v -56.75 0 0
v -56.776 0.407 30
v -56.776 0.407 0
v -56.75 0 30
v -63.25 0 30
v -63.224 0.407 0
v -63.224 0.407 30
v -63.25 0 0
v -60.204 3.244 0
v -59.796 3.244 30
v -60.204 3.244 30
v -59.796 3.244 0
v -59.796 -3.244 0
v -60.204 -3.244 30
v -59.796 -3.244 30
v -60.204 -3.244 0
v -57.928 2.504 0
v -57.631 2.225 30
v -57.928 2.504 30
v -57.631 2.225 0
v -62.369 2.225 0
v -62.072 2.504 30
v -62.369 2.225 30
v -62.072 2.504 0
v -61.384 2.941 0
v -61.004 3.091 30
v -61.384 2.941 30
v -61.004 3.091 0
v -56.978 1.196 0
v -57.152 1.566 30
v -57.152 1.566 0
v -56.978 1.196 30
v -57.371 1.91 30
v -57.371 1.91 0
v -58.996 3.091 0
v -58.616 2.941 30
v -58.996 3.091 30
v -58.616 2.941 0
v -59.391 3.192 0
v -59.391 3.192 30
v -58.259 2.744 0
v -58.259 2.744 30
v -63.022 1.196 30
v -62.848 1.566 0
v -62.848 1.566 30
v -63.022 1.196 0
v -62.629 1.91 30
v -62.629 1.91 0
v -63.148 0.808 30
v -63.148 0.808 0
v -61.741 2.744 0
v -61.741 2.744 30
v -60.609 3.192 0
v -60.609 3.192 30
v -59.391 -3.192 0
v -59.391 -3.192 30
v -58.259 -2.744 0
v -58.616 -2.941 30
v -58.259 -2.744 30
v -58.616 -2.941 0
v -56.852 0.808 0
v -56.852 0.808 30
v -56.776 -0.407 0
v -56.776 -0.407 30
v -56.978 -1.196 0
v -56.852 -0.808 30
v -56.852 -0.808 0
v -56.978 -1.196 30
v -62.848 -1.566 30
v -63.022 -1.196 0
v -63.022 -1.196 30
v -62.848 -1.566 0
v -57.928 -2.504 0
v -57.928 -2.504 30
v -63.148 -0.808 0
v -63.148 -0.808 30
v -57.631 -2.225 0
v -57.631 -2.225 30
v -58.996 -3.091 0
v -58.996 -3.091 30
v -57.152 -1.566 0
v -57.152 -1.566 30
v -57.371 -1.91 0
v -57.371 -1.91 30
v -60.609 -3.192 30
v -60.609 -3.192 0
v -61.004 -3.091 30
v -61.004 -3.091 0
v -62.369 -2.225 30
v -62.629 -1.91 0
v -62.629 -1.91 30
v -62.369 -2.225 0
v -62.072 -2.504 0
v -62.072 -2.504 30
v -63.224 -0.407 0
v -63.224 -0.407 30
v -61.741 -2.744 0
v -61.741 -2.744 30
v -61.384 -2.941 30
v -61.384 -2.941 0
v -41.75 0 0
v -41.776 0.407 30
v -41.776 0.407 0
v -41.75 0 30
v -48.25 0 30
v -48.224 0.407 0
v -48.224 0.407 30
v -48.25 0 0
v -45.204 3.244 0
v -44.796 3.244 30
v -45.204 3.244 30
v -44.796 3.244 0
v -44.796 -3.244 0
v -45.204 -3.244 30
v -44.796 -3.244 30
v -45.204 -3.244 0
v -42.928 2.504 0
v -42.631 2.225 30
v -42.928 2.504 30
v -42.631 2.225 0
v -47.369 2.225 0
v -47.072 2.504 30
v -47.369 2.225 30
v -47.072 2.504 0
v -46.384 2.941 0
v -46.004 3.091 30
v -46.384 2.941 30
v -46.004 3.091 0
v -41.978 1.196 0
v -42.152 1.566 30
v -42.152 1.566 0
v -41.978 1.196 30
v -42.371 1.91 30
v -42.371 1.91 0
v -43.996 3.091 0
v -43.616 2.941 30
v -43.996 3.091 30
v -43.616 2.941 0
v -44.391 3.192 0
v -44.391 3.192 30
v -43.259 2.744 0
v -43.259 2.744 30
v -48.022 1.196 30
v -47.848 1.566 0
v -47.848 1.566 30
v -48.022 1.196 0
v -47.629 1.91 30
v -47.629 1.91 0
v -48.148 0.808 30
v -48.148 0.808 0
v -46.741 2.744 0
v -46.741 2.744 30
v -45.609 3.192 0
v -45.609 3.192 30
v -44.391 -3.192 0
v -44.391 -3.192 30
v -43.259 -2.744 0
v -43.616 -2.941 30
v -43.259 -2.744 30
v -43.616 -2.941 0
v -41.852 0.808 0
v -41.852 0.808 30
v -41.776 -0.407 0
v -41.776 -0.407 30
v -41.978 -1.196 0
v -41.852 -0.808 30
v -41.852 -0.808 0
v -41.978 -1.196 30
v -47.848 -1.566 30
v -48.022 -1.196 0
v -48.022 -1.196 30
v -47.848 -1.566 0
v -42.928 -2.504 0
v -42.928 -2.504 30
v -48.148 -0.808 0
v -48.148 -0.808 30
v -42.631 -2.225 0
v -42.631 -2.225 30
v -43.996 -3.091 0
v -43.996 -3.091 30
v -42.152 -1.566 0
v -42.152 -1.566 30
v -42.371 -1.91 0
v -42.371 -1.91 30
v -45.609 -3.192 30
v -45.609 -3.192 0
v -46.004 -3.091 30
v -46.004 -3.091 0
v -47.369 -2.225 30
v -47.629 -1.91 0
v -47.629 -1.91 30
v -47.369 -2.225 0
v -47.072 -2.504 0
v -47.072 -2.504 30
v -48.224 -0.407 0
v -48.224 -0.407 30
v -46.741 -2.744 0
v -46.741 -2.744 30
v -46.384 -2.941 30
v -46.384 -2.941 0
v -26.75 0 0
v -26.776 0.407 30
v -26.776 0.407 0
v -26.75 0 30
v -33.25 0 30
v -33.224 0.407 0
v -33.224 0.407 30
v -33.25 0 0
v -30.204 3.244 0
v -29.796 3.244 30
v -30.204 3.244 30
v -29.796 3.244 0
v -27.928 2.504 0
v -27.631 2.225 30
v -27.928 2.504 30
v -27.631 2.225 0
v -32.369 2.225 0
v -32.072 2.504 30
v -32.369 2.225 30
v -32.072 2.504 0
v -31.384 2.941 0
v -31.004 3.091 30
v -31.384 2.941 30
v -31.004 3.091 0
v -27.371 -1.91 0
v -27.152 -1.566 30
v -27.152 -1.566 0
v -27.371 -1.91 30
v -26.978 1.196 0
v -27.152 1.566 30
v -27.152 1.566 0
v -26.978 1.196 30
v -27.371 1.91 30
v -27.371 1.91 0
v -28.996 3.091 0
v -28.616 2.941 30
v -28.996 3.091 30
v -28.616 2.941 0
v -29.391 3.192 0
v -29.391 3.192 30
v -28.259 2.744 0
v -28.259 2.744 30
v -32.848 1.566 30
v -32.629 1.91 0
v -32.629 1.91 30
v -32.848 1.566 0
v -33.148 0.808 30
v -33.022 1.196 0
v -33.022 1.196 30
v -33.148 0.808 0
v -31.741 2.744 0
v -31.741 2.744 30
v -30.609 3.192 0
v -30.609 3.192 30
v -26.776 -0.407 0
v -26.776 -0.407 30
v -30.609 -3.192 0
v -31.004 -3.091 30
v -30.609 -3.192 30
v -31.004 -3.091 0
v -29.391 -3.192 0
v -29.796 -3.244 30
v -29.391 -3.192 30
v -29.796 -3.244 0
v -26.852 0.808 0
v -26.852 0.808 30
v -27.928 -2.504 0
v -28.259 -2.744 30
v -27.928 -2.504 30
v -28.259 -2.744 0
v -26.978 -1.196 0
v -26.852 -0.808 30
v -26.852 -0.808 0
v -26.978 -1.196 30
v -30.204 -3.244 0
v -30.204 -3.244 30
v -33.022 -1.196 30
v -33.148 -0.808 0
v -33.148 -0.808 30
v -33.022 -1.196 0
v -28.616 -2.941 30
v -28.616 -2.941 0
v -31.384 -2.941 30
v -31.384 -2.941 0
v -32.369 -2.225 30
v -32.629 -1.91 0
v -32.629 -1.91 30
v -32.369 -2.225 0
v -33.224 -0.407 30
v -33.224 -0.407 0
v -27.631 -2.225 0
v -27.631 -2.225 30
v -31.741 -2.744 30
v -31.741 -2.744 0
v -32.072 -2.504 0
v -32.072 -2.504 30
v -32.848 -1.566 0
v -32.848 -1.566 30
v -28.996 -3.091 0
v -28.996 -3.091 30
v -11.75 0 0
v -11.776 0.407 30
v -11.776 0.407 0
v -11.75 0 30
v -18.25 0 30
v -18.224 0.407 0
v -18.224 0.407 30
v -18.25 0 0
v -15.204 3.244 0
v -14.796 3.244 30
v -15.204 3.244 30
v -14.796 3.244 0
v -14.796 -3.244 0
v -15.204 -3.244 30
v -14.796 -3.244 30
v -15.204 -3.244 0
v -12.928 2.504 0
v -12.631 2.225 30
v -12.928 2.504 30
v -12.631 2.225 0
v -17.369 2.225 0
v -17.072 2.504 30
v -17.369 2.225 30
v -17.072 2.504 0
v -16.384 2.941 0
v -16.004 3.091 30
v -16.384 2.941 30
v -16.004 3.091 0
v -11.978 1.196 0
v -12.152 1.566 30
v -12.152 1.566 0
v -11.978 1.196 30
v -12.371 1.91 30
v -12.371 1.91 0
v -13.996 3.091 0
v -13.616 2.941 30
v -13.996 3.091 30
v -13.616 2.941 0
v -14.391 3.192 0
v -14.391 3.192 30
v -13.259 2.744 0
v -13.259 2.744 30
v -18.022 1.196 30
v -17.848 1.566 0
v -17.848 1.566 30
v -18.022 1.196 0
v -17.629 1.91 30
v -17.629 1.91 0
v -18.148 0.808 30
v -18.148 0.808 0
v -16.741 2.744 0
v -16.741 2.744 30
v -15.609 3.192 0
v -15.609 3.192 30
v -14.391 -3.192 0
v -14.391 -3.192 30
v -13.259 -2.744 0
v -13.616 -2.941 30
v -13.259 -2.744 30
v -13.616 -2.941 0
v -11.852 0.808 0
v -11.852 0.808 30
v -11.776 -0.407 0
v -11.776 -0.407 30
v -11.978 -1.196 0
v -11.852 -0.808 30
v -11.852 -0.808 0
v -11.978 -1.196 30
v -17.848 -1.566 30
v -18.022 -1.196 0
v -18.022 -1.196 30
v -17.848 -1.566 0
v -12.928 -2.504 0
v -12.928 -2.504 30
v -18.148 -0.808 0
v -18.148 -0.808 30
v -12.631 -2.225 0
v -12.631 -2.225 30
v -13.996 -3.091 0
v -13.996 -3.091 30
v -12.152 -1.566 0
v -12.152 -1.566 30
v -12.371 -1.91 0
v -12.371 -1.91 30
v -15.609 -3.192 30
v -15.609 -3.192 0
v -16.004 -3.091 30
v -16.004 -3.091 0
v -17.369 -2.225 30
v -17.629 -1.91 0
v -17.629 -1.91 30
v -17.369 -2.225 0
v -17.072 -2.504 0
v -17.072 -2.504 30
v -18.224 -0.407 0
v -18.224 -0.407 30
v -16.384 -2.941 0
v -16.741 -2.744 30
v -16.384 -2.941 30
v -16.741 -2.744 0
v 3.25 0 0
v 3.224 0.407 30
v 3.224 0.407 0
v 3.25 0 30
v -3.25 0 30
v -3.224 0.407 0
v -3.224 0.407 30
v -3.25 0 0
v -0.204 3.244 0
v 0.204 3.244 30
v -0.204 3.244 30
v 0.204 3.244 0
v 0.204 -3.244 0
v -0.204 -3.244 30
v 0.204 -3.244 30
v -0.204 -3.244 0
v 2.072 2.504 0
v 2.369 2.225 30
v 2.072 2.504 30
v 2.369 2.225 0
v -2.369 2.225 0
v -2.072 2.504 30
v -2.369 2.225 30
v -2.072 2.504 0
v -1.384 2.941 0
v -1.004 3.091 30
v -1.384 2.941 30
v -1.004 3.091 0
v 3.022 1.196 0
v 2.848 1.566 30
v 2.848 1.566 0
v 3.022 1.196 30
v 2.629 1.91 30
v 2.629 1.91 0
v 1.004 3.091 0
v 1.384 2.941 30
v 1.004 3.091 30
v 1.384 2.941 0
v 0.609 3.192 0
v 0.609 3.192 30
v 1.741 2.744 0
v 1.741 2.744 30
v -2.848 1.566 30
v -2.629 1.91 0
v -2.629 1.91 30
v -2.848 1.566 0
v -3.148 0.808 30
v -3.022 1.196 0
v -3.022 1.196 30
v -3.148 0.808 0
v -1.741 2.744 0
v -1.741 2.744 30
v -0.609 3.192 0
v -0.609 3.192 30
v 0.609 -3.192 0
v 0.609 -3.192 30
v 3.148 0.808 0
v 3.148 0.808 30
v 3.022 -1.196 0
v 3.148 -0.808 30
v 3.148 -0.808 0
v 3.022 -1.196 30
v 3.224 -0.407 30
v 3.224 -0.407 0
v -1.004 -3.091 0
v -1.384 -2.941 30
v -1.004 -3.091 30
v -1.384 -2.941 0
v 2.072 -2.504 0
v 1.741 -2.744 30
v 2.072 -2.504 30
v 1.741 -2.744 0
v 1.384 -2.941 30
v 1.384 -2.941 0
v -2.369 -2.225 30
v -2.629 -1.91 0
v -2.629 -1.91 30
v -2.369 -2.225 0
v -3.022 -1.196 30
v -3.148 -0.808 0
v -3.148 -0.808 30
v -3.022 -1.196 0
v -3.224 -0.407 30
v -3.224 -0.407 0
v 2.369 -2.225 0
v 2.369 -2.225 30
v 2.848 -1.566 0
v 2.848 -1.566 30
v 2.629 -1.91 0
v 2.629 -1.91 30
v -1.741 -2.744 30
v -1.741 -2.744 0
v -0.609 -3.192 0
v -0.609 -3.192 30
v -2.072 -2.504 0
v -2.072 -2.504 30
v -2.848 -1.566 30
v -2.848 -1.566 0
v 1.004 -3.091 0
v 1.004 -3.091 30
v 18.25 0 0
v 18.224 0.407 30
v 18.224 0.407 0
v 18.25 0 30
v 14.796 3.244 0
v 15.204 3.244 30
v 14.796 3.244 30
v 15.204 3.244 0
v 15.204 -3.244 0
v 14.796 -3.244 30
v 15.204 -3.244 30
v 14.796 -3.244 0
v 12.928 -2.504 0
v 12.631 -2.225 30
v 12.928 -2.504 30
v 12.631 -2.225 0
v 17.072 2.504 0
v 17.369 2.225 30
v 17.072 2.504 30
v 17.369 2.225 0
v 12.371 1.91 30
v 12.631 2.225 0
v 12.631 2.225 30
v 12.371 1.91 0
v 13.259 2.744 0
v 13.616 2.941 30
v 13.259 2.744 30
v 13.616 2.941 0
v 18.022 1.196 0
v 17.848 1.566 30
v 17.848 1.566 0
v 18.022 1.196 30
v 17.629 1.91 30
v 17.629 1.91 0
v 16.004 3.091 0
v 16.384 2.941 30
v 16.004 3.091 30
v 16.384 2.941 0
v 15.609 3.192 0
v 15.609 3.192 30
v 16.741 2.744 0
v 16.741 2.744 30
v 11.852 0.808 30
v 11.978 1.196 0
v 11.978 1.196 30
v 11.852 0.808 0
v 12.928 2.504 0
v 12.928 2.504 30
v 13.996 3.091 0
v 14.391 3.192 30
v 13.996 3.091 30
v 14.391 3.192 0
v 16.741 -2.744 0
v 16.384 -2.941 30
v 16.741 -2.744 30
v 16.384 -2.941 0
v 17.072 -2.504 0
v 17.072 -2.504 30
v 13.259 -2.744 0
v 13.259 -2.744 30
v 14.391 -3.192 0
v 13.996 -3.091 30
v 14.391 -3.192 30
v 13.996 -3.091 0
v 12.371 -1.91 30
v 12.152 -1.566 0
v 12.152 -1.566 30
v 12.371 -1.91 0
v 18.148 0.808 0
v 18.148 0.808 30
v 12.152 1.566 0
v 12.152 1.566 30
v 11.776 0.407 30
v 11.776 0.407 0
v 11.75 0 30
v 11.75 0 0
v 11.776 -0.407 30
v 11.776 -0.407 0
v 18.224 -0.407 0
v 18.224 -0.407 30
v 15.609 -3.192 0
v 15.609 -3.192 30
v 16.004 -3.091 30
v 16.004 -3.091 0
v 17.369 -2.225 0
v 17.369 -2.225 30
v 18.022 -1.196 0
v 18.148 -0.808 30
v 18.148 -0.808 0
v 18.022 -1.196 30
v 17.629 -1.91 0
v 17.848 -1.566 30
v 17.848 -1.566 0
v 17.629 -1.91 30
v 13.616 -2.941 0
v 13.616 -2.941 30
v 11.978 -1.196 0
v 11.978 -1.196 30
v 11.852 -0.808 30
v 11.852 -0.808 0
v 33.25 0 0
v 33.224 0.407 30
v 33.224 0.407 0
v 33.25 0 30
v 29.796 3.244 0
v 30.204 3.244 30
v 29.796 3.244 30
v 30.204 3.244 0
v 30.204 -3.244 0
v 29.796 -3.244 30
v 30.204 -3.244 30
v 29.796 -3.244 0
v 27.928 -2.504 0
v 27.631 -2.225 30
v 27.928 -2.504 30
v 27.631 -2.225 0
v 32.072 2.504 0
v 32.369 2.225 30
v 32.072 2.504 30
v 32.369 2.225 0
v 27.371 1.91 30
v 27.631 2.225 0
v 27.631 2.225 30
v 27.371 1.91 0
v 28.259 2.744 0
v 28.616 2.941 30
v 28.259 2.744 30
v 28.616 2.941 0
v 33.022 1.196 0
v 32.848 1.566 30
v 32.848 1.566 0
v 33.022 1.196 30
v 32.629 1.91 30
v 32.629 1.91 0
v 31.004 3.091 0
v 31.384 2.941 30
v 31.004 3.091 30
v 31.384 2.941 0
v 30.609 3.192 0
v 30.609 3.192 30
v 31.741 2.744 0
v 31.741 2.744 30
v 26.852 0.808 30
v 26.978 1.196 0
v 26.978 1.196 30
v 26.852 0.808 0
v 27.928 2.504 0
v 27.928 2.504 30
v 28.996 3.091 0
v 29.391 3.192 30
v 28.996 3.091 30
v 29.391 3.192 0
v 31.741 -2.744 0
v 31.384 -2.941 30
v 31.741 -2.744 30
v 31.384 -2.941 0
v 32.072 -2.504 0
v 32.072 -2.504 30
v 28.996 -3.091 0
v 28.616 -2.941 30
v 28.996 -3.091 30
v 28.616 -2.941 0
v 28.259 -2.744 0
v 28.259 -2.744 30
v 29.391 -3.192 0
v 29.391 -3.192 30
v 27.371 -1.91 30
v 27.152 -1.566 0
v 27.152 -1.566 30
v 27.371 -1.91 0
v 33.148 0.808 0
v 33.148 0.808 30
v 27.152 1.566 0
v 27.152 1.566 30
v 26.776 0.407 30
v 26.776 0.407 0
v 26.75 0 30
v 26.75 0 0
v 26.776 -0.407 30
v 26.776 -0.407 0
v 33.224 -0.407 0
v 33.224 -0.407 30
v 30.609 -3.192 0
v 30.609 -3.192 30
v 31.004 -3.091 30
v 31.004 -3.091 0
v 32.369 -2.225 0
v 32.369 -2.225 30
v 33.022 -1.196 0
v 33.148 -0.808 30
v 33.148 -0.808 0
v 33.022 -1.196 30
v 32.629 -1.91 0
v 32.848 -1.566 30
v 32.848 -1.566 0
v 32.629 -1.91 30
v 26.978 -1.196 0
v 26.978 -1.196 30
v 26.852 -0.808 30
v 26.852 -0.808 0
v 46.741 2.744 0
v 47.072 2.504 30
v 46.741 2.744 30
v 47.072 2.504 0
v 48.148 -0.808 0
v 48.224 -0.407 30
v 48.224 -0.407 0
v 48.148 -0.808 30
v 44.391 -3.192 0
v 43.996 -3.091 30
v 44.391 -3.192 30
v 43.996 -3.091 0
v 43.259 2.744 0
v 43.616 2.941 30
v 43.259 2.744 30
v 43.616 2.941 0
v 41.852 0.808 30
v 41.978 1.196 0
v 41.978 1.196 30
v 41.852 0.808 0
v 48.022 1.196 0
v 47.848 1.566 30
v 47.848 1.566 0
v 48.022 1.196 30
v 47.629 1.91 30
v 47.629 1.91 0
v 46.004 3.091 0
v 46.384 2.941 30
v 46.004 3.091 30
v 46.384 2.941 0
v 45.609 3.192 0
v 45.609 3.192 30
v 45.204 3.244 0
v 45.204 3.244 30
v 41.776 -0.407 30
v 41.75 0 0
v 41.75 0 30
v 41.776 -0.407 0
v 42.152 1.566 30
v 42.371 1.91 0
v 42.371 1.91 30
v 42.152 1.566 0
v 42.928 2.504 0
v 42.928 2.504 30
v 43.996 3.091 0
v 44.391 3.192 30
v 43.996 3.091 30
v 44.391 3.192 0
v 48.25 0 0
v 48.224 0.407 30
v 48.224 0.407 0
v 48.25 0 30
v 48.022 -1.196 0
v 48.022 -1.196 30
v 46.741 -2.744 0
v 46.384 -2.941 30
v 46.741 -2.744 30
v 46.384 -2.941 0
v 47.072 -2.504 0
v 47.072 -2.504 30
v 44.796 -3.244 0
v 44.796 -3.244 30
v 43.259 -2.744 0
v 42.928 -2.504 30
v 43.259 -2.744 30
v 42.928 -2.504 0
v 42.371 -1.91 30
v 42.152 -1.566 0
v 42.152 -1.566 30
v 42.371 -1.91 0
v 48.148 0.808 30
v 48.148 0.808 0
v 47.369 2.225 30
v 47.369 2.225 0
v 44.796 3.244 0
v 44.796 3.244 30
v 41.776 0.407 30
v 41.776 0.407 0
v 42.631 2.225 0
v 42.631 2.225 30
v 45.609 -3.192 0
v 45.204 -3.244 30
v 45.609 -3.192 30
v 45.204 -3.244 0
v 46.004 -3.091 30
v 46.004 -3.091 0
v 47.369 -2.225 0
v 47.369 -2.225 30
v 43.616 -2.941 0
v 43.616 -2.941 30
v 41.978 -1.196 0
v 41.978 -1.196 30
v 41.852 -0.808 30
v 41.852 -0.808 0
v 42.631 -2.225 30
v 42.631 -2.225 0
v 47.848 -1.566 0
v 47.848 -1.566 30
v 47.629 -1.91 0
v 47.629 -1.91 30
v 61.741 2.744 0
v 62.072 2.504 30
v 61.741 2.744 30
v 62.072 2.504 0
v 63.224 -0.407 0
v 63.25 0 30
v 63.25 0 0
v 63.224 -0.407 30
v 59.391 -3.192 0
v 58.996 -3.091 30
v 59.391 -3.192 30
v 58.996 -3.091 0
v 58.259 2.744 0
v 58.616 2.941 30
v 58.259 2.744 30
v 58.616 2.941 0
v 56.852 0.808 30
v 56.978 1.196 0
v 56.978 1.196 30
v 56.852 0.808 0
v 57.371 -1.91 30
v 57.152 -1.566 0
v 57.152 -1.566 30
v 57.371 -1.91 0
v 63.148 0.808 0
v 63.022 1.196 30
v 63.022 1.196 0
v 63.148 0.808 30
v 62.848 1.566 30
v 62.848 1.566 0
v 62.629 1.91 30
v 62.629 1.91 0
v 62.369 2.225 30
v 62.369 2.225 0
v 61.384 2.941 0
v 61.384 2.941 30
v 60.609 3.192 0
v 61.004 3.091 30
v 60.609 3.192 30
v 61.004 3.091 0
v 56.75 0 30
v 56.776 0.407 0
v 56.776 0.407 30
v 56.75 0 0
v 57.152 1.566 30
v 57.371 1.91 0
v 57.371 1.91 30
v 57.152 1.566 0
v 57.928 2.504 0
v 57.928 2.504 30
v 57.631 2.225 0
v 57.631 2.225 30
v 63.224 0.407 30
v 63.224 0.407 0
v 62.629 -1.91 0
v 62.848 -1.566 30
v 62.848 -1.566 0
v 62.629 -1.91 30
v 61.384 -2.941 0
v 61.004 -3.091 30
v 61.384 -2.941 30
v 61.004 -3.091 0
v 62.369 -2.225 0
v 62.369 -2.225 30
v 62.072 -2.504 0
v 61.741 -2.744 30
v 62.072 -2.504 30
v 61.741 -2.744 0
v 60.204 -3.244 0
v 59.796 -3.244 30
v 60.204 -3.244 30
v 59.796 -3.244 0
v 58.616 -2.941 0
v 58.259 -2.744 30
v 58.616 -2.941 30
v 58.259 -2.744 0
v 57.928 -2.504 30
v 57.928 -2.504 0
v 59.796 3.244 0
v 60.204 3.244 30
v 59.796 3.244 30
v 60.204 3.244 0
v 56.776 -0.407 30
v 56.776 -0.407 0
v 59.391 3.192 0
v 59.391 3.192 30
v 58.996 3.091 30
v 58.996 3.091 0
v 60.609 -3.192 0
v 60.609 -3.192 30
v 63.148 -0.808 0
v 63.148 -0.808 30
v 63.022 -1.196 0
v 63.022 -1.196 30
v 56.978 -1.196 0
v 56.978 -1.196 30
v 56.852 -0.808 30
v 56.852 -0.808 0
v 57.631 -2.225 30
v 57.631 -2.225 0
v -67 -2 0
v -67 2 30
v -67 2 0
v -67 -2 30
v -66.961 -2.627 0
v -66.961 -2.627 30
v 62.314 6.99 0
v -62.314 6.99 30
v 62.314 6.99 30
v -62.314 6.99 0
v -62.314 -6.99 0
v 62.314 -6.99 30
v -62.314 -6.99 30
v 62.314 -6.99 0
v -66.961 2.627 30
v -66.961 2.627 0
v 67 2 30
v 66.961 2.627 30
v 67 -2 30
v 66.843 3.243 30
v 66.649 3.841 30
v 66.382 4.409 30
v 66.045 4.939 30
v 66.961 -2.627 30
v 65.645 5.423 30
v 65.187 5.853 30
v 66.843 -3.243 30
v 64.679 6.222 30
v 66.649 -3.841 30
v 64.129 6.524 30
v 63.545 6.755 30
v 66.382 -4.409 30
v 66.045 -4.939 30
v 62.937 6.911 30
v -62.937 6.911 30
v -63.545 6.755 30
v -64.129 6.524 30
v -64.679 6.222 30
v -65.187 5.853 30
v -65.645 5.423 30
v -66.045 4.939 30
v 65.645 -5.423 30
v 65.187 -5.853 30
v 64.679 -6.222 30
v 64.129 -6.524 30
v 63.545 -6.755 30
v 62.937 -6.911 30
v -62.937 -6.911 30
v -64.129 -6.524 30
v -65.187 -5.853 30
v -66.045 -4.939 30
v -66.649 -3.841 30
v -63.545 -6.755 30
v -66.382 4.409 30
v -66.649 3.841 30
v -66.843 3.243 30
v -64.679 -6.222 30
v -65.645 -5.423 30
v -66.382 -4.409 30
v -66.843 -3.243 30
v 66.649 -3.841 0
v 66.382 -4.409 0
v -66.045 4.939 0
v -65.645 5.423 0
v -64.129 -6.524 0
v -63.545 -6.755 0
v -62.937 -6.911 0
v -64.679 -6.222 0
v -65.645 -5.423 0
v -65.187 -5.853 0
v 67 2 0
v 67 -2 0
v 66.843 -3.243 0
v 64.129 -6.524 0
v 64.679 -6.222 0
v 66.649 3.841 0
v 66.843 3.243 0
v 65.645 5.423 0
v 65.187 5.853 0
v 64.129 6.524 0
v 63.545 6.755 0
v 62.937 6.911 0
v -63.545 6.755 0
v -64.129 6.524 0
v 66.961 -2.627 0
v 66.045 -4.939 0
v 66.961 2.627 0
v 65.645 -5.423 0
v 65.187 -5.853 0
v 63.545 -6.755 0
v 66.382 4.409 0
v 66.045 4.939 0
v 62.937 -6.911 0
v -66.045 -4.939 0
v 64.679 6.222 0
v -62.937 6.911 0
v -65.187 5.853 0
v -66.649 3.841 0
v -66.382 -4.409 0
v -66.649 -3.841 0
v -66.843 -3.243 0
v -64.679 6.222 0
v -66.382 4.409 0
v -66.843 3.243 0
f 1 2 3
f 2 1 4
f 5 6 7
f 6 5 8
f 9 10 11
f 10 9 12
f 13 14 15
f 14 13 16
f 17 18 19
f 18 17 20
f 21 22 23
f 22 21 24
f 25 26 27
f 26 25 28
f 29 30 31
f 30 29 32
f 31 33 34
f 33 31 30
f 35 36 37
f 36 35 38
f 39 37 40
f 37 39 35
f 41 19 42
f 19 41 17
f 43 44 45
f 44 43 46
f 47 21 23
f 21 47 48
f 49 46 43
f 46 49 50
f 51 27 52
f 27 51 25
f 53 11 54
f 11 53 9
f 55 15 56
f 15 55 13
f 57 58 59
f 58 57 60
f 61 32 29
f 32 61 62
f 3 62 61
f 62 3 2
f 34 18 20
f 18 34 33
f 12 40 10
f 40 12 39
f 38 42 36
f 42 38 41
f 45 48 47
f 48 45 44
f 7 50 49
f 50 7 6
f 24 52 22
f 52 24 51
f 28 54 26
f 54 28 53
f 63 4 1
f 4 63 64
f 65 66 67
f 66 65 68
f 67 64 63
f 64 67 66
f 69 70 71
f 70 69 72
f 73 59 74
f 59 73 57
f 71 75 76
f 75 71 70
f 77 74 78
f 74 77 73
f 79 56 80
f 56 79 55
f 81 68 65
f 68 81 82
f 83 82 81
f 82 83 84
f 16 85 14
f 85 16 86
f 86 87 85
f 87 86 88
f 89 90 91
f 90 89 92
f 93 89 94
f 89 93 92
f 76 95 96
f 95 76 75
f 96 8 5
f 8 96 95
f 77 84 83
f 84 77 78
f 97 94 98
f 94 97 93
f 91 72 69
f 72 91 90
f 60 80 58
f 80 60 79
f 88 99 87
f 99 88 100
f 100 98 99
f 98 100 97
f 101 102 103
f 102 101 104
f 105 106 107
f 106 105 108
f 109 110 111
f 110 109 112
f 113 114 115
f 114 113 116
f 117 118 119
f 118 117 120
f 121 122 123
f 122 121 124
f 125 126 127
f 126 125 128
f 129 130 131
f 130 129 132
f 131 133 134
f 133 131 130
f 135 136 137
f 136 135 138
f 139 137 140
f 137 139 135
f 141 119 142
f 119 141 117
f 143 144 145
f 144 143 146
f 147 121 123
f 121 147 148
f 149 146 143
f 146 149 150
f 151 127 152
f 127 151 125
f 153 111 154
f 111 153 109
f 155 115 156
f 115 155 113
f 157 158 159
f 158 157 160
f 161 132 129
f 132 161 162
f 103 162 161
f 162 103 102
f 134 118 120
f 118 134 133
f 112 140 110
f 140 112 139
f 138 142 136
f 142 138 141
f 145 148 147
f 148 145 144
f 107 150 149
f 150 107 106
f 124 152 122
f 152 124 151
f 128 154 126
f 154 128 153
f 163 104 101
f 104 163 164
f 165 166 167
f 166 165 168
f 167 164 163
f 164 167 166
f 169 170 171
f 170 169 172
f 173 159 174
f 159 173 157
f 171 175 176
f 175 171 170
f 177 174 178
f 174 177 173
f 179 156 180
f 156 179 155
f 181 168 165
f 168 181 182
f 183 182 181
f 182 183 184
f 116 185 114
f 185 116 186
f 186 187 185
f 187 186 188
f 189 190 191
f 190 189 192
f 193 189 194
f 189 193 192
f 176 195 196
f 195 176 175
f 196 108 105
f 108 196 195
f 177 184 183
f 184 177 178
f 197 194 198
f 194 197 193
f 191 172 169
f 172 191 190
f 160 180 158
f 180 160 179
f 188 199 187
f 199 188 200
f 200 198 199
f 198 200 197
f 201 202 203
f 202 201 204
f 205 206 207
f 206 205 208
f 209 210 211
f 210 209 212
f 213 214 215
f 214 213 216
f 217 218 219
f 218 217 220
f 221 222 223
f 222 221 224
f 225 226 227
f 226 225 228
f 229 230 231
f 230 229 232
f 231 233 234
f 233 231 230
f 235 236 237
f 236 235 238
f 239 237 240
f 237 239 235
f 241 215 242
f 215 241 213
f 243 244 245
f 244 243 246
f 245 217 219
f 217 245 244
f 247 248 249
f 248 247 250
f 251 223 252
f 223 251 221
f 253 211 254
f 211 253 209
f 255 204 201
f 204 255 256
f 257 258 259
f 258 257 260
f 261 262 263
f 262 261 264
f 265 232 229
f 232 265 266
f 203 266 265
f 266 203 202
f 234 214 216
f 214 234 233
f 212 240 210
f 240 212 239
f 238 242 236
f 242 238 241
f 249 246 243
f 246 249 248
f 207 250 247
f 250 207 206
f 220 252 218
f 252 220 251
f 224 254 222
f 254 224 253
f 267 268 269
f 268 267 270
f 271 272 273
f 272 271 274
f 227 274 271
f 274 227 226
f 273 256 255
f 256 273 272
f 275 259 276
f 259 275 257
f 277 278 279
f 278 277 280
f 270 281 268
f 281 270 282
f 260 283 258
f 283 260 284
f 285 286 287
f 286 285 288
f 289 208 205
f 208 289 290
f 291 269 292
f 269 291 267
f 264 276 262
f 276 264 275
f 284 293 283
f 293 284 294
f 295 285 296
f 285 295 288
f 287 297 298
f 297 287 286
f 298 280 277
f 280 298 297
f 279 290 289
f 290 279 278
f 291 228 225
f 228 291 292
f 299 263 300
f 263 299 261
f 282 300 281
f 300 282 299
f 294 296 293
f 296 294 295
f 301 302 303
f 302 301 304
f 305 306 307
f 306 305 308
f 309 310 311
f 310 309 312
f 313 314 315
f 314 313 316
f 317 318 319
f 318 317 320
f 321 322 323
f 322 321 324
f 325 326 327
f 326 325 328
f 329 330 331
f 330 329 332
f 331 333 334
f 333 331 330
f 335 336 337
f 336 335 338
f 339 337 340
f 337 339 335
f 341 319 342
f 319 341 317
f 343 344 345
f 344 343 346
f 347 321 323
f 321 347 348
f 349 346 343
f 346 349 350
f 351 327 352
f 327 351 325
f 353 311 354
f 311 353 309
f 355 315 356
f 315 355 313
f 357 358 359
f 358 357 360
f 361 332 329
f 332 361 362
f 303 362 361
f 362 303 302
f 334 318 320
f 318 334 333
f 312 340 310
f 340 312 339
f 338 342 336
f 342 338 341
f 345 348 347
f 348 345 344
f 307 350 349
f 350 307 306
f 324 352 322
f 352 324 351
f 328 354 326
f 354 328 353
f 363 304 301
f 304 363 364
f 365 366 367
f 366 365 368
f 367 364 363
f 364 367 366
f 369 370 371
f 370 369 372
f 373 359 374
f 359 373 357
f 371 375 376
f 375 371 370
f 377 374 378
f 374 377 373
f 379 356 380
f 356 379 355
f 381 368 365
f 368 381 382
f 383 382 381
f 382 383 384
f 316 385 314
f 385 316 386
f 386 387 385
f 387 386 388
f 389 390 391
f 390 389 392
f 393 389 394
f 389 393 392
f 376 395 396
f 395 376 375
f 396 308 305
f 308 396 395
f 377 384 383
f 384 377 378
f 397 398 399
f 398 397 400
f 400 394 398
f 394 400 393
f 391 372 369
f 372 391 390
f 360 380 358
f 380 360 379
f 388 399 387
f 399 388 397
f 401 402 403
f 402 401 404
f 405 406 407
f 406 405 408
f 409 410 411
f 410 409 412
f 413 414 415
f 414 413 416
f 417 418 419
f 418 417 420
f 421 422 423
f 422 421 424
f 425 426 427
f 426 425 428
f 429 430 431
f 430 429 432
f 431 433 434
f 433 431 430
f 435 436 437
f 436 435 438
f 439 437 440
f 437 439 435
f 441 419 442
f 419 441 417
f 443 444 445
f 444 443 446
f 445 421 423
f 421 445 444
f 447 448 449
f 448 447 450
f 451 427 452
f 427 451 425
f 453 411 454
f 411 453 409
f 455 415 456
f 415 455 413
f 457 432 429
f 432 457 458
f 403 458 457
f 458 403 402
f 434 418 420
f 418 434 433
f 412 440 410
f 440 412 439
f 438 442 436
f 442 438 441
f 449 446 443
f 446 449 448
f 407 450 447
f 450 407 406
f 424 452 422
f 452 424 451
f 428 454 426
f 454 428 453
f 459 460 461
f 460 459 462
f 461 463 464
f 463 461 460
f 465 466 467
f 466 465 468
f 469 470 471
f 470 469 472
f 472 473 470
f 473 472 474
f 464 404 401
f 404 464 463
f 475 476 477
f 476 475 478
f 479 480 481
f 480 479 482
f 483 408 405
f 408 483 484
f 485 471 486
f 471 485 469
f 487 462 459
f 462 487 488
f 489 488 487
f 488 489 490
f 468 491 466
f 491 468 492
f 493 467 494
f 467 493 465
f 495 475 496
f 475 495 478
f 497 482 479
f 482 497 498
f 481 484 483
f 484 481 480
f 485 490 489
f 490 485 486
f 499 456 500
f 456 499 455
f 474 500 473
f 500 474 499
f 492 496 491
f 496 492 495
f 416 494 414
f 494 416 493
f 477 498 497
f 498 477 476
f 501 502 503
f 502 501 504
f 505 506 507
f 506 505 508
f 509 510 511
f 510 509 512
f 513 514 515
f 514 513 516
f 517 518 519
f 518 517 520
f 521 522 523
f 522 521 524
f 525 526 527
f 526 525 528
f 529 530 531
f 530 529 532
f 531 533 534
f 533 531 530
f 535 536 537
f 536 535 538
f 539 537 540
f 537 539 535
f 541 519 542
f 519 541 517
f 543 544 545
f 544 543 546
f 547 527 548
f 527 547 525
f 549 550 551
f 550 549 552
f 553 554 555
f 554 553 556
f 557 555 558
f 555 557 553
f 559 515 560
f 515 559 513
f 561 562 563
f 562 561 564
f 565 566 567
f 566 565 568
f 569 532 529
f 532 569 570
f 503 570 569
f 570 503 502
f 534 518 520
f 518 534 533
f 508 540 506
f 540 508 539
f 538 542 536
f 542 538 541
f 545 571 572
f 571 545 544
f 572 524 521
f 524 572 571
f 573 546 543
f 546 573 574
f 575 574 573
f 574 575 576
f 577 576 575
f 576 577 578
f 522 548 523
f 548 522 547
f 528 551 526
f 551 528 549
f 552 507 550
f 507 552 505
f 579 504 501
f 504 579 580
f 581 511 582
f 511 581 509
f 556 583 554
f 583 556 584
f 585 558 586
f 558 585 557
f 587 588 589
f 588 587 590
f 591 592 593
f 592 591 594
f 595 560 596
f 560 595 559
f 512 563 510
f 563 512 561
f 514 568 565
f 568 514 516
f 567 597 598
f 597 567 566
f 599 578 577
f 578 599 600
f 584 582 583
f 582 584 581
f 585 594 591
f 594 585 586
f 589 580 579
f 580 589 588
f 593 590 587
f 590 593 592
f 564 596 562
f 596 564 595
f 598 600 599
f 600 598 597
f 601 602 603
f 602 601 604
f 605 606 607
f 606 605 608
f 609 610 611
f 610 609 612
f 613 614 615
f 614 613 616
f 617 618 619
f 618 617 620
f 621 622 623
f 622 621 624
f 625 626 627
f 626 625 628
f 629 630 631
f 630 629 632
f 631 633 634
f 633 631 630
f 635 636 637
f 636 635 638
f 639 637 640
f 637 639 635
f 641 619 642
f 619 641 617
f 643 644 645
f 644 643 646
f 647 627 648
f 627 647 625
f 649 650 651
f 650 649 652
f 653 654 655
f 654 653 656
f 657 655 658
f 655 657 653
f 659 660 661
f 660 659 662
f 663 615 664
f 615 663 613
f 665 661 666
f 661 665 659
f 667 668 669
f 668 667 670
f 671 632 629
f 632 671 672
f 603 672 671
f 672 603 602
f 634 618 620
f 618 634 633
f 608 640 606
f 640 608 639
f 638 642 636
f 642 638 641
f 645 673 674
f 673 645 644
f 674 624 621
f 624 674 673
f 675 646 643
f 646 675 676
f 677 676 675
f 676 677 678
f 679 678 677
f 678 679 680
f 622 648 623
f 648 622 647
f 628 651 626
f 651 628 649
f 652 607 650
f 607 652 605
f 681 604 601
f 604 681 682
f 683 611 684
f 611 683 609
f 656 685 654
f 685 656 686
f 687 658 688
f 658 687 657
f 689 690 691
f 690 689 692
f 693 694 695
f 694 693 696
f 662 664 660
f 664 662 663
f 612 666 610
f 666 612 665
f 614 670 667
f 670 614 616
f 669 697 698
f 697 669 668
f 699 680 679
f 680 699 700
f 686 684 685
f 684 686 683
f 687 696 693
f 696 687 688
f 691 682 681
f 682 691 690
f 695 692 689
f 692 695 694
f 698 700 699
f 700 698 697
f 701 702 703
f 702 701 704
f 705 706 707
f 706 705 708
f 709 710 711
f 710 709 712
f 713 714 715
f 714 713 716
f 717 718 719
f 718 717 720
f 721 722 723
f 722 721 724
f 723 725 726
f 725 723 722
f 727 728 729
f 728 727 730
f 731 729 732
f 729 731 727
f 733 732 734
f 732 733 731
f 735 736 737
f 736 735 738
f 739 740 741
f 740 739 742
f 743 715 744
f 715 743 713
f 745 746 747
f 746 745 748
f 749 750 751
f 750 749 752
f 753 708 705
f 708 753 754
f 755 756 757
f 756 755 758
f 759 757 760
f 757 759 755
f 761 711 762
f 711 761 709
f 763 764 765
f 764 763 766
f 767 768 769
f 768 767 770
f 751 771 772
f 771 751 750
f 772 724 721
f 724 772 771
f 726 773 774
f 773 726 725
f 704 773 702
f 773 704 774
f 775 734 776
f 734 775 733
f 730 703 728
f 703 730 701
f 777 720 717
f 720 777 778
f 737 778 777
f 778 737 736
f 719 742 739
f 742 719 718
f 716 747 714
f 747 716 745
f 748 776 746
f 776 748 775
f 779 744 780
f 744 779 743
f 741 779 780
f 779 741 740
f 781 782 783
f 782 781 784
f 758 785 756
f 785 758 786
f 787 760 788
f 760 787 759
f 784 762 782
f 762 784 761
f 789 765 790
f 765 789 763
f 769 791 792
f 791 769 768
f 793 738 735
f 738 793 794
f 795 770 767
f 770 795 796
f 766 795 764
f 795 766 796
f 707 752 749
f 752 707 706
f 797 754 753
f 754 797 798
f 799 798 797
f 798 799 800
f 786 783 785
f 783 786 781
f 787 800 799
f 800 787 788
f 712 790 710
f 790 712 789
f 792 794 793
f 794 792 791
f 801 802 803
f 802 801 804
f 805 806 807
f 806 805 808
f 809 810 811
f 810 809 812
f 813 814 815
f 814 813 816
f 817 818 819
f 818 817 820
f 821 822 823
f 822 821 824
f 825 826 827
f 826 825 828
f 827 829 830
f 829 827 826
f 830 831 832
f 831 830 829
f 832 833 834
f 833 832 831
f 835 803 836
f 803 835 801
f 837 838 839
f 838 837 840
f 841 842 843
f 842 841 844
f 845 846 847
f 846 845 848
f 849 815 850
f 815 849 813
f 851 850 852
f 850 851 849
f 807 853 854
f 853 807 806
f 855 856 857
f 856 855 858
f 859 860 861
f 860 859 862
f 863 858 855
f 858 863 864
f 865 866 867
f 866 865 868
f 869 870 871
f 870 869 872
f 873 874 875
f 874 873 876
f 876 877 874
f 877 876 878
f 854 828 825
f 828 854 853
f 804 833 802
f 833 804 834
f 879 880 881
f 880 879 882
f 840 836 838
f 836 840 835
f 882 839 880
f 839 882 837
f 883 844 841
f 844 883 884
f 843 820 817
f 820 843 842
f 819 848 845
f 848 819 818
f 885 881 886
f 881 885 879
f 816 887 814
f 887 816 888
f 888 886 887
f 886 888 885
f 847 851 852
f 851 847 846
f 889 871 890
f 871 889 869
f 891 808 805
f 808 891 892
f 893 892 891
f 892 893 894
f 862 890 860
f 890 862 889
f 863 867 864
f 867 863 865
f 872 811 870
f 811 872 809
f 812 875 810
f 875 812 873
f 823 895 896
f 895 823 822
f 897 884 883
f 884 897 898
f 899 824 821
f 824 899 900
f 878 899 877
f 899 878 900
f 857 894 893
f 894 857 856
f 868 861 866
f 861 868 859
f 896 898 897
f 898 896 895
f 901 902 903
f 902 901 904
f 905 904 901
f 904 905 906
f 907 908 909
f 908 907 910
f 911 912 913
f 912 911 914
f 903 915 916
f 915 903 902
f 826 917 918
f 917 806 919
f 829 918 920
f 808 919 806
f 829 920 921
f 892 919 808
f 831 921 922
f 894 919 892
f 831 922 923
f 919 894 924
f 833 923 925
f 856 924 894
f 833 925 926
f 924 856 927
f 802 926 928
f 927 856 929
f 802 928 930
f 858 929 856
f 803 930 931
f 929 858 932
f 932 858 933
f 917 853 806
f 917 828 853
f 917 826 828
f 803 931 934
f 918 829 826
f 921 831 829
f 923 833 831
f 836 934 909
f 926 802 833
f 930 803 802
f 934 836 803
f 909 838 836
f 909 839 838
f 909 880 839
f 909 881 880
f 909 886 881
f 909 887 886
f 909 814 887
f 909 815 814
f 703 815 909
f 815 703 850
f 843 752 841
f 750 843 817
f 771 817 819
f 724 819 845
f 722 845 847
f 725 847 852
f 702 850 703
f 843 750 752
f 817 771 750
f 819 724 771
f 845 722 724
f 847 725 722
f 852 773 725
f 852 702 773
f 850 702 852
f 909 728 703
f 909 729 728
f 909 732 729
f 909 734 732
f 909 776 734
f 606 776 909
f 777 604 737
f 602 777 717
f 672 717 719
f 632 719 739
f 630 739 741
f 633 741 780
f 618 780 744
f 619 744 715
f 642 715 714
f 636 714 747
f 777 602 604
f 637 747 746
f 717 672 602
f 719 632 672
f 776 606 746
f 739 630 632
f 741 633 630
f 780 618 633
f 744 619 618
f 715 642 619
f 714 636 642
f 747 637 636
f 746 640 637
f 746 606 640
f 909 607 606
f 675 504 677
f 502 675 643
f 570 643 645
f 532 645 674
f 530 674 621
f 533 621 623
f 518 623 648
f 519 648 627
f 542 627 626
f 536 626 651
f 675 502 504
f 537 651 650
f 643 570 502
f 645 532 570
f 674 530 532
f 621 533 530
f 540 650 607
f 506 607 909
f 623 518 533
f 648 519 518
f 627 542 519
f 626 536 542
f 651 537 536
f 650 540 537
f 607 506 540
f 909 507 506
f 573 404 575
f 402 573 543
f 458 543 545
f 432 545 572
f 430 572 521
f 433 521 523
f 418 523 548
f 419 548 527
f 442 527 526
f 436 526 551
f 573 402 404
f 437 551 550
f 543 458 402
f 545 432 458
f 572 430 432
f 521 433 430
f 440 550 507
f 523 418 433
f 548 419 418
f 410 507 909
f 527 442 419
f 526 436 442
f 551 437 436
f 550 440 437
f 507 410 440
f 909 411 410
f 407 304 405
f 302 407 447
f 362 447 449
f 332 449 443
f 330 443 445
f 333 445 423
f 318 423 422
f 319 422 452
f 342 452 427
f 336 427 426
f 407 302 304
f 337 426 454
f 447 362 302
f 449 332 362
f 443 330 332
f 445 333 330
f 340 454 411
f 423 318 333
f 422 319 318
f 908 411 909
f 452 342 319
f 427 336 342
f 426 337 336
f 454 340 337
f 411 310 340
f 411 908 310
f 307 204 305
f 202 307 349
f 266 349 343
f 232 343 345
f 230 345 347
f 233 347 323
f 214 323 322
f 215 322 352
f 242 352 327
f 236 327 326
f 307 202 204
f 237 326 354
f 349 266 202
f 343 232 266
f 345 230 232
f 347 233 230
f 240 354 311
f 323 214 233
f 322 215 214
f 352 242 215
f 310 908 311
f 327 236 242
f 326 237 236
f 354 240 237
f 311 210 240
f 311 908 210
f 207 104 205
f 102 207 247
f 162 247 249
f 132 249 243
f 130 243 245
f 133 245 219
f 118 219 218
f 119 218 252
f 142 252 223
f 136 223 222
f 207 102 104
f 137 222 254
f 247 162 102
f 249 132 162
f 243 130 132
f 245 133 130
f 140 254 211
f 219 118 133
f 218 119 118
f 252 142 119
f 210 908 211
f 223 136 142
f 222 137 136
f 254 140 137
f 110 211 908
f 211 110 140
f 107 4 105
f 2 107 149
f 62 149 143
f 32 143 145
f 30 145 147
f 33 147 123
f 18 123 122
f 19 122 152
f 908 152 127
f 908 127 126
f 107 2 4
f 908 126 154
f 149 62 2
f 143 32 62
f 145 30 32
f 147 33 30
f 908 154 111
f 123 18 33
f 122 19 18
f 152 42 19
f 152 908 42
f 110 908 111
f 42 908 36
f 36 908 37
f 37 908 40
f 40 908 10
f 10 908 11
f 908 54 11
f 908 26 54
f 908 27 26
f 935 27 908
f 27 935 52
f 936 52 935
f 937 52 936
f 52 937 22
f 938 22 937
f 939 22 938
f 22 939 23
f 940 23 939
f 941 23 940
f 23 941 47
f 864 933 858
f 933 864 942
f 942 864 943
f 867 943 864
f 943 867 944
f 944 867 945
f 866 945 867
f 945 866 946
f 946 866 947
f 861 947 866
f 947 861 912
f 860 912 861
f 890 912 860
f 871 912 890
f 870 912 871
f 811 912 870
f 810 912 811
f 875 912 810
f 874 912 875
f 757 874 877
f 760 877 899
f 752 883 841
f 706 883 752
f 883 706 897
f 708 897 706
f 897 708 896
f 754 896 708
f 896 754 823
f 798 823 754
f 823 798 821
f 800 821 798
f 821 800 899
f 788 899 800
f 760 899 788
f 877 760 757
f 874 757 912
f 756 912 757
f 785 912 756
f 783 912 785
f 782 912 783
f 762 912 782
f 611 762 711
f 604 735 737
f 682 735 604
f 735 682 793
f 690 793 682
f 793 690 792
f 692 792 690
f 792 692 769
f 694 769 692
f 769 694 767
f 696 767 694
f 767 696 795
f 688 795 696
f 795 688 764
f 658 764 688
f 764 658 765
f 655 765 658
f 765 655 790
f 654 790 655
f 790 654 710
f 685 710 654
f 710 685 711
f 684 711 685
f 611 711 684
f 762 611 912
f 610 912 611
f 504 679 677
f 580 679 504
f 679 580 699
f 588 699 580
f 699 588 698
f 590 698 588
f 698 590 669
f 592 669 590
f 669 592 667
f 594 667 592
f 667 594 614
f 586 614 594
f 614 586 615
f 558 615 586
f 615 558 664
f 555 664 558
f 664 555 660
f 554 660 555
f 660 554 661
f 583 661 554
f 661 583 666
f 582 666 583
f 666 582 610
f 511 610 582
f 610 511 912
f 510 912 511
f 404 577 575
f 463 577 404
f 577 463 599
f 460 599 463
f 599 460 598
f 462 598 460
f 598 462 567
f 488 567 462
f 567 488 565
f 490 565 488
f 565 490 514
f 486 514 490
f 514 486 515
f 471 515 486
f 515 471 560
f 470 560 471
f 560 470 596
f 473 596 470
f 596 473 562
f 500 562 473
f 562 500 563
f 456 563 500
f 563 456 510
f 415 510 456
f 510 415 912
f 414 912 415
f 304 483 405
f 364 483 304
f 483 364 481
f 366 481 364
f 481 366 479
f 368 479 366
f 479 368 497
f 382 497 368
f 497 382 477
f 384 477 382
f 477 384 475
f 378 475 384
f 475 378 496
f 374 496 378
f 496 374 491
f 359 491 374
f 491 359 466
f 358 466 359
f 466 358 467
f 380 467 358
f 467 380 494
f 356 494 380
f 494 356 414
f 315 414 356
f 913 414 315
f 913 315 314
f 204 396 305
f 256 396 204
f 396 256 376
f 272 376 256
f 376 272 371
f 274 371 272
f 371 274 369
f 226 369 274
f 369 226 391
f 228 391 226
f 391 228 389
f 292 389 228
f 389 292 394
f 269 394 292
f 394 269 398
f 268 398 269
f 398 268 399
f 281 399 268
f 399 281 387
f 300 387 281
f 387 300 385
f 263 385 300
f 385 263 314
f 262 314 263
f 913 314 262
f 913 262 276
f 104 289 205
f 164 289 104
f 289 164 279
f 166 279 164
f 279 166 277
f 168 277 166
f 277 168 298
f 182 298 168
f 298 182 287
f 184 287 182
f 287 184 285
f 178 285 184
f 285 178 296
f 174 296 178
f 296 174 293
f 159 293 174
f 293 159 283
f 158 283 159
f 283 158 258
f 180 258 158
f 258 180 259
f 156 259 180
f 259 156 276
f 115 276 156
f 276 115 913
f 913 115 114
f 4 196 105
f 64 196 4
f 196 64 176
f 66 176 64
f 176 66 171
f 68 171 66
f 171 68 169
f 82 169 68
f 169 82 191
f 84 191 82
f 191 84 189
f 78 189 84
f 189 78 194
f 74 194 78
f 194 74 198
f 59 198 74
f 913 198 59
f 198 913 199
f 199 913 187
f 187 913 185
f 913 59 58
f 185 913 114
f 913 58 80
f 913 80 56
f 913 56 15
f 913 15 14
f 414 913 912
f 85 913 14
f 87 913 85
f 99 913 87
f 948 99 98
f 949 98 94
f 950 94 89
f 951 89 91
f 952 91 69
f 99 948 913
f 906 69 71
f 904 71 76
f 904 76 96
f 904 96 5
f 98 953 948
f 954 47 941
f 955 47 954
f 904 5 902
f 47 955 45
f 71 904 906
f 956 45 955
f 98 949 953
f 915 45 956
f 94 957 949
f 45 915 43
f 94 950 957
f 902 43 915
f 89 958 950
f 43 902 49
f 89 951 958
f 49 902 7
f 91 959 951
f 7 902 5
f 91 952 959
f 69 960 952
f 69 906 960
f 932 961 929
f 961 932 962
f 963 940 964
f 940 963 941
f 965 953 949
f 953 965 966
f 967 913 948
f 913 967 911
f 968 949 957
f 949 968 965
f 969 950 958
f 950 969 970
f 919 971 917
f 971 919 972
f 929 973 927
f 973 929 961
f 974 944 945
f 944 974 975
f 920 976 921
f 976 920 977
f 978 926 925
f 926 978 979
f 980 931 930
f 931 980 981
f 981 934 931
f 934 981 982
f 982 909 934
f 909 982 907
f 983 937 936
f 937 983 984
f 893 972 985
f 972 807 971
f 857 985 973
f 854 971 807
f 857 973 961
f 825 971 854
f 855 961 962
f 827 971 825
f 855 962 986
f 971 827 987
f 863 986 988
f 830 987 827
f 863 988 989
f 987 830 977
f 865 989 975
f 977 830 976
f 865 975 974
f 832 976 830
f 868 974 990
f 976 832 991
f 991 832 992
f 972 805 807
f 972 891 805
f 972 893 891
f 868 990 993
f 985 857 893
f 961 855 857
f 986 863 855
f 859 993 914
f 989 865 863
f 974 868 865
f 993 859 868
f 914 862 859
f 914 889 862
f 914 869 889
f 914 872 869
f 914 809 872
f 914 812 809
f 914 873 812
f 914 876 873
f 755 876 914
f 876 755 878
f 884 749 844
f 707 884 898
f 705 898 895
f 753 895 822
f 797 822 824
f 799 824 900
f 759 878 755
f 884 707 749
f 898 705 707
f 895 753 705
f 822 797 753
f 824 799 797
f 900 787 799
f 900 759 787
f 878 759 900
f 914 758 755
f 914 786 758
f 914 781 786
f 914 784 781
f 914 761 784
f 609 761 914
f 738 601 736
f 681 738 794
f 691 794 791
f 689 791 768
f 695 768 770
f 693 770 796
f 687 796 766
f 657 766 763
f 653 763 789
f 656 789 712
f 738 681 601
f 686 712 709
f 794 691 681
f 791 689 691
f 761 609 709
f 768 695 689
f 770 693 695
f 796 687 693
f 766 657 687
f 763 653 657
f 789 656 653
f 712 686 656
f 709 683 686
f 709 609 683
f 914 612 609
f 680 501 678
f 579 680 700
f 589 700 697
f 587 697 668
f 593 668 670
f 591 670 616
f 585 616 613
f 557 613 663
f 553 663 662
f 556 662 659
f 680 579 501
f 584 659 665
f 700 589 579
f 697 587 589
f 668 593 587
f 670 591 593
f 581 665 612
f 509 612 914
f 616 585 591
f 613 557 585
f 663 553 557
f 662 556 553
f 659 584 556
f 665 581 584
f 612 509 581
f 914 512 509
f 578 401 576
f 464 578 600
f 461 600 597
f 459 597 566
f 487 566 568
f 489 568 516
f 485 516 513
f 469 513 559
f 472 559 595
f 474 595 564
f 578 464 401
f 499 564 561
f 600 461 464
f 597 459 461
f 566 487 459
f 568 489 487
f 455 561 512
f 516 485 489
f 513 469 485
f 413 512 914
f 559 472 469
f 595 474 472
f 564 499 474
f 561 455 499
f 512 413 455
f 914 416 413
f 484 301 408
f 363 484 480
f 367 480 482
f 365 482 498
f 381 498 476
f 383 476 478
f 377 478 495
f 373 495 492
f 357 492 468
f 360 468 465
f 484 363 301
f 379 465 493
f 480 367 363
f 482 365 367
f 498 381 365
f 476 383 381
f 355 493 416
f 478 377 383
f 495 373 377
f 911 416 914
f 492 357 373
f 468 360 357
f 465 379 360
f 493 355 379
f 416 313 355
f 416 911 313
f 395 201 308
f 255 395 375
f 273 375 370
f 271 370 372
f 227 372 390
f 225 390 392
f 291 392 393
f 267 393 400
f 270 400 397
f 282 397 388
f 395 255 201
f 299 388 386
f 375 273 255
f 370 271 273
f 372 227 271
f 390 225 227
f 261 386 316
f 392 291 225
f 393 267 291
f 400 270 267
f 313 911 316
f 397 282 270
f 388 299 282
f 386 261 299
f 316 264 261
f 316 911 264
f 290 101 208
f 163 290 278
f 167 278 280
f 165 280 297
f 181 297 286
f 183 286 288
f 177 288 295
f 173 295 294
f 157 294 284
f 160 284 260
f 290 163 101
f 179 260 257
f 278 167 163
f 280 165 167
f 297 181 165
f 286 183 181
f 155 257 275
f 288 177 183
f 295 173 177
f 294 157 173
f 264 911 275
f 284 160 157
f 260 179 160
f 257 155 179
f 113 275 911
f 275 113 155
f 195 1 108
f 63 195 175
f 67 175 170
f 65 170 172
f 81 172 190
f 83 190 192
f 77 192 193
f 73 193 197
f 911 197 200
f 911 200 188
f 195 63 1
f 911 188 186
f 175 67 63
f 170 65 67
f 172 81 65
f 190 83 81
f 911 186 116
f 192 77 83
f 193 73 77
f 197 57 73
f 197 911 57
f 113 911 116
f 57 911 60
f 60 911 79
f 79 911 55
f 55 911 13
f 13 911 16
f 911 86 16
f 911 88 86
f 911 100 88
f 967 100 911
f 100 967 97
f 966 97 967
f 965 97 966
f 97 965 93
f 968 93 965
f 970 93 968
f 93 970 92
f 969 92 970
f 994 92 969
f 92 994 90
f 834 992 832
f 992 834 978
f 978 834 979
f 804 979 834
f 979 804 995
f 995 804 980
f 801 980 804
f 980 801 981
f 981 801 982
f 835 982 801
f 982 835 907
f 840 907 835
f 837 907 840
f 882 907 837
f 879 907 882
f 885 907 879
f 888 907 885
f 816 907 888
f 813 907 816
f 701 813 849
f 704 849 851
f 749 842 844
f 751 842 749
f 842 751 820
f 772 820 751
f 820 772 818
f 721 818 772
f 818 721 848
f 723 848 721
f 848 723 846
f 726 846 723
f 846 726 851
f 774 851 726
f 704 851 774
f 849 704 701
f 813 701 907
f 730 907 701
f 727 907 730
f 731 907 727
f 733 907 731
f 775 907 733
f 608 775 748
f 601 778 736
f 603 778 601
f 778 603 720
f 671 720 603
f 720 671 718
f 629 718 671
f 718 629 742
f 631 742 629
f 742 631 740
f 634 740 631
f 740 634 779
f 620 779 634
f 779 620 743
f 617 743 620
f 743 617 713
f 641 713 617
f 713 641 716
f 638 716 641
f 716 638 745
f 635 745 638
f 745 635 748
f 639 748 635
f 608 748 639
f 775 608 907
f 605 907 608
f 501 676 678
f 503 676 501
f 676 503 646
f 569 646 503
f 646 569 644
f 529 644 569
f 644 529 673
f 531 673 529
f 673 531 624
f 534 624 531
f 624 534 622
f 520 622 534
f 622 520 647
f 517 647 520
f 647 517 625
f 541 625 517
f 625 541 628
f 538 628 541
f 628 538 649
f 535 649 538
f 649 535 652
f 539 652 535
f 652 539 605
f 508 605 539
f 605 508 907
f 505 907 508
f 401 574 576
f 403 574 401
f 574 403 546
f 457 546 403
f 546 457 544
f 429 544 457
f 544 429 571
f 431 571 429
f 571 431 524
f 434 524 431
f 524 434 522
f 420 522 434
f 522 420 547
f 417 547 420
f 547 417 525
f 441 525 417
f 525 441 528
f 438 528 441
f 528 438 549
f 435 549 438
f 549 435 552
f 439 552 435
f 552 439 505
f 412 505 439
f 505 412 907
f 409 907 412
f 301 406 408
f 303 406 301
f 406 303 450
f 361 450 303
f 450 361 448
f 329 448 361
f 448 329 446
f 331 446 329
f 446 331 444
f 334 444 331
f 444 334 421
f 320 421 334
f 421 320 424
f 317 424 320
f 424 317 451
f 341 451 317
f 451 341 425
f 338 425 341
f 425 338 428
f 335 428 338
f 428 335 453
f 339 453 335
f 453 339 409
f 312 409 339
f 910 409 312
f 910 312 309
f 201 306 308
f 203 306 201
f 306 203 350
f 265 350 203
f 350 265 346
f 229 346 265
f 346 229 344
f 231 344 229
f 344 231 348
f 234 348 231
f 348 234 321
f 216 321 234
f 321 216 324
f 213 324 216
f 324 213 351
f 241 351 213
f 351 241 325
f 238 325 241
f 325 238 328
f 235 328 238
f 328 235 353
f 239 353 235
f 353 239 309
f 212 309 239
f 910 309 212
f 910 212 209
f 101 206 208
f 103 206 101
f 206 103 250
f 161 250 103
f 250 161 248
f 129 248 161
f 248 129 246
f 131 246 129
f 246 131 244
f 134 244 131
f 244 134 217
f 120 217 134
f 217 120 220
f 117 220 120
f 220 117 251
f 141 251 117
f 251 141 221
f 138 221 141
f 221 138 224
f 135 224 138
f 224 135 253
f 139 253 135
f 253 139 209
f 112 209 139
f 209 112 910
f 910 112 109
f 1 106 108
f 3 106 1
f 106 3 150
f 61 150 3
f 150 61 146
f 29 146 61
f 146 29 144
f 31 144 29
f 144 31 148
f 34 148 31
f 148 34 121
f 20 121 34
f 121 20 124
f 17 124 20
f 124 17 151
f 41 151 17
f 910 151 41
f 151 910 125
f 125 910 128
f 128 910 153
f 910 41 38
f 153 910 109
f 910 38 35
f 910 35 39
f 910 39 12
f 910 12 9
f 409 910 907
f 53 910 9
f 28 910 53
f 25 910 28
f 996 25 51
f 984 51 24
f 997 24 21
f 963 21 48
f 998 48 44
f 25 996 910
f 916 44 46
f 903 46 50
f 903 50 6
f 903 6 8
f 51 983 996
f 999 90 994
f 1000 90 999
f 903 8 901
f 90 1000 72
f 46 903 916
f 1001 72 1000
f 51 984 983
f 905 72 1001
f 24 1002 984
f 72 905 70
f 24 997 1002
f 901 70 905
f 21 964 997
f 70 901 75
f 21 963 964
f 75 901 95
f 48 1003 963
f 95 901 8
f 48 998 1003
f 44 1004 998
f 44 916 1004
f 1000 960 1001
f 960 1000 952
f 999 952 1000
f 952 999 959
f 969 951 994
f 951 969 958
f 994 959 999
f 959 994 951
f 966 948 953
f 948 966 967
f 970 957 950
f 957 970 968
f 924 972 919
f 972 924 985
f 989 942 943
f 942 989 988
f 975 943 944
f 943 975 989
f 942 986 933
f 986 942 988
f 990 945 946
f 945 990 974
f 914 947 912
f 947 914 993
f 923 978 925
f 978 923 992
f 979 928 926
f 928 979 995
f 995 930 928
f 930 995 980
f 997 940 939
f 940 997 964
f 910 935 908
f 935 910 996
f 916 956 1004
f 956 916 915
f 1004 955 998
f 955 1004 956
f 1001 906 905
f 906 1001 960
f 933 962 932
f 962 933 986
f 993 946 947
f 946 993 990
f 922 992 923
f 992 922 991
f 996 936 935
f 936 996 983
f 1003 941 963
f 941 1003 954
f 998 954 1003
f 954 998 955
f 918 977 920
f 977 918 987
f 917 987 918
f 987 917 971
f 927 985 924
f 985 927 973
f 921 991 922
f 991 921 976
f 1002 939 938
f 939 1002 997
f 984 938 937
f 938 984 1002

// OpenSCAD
$fn = 50;


difference() {
	union() {
		hull() {
			translate(v = [-62.0000000000, 2.0000000000, 0]) {
				cylinder(h = 30, r = 5);
			}
			translate(v = [62.0000000000, 2.0000000000, 0]) {
				cylinder(h = 30, r = 5);
			}
			translate(v = [-62.0000000000, -2.0000000000, 0]) {
				cylinder(h = 30, r = 5);
			}
			translate(v = [62.0000000000, -2.0000000000, 0]) {
				cylinder(h = 30, r = 5);
			}
		}
	}
	union() {
		translate(v = [-60.0000000000, 0.0000000000, 0]) {
			translate(v = [0, 0, -100]) {
				cylinder(h = 200, r = 3.2500000000);
			}
		}
		translate(v = [-45.0000000000, 0.0000000000, 0]) {
			translate(v = [0, 0, -100]) {
				cylinder(h = 200, r = 3.2500000000);
			}
		}
		translate(v = [-30.0000000000, 0.0000000000, 0]) {
			translate(v = [0, 0, -100]) {
				cylinder(h = 200, r = 3.2500000000);
			}
		}
		translate(v = [-15.0000000000, 0.0000000000, 0]) {
			translate(v = [0, 0, -100]) {
				cylinder(h = 200, r = 3.2500000000);
			}
		}
		translate(v = [0, 0, -100]) {
			cylinder(h = 200, r = 3.2500000000);
		}
		translate(v = [15.0000000000, 0.0000000000, 0]) {
			translate(v = [0, 0, -100]) {
				cylinder(h = 200, r = 3.2500000000);
			}
		}
		translate(v = [30.0000000000, 0.0000000000, 0]) {
			translate(v = [0, 0, -100]) {
				cylinder(h = 200, r = 3.2500000000);
			}
		}
		translate(v = [45.0000000000, 0.0000000000, 0]) {
			translate(v = [0, 0, -100]) {
				cylinder(h = 200, r = 3.2500000000);
			}
		}
		translate(v = [60.0000000000, 0.0000000000, 0]) {
			translate(v = [0, 0, -100]) {
				cylinder(h = 200, r = 3.2500000000);
			}
		}
	}
}
